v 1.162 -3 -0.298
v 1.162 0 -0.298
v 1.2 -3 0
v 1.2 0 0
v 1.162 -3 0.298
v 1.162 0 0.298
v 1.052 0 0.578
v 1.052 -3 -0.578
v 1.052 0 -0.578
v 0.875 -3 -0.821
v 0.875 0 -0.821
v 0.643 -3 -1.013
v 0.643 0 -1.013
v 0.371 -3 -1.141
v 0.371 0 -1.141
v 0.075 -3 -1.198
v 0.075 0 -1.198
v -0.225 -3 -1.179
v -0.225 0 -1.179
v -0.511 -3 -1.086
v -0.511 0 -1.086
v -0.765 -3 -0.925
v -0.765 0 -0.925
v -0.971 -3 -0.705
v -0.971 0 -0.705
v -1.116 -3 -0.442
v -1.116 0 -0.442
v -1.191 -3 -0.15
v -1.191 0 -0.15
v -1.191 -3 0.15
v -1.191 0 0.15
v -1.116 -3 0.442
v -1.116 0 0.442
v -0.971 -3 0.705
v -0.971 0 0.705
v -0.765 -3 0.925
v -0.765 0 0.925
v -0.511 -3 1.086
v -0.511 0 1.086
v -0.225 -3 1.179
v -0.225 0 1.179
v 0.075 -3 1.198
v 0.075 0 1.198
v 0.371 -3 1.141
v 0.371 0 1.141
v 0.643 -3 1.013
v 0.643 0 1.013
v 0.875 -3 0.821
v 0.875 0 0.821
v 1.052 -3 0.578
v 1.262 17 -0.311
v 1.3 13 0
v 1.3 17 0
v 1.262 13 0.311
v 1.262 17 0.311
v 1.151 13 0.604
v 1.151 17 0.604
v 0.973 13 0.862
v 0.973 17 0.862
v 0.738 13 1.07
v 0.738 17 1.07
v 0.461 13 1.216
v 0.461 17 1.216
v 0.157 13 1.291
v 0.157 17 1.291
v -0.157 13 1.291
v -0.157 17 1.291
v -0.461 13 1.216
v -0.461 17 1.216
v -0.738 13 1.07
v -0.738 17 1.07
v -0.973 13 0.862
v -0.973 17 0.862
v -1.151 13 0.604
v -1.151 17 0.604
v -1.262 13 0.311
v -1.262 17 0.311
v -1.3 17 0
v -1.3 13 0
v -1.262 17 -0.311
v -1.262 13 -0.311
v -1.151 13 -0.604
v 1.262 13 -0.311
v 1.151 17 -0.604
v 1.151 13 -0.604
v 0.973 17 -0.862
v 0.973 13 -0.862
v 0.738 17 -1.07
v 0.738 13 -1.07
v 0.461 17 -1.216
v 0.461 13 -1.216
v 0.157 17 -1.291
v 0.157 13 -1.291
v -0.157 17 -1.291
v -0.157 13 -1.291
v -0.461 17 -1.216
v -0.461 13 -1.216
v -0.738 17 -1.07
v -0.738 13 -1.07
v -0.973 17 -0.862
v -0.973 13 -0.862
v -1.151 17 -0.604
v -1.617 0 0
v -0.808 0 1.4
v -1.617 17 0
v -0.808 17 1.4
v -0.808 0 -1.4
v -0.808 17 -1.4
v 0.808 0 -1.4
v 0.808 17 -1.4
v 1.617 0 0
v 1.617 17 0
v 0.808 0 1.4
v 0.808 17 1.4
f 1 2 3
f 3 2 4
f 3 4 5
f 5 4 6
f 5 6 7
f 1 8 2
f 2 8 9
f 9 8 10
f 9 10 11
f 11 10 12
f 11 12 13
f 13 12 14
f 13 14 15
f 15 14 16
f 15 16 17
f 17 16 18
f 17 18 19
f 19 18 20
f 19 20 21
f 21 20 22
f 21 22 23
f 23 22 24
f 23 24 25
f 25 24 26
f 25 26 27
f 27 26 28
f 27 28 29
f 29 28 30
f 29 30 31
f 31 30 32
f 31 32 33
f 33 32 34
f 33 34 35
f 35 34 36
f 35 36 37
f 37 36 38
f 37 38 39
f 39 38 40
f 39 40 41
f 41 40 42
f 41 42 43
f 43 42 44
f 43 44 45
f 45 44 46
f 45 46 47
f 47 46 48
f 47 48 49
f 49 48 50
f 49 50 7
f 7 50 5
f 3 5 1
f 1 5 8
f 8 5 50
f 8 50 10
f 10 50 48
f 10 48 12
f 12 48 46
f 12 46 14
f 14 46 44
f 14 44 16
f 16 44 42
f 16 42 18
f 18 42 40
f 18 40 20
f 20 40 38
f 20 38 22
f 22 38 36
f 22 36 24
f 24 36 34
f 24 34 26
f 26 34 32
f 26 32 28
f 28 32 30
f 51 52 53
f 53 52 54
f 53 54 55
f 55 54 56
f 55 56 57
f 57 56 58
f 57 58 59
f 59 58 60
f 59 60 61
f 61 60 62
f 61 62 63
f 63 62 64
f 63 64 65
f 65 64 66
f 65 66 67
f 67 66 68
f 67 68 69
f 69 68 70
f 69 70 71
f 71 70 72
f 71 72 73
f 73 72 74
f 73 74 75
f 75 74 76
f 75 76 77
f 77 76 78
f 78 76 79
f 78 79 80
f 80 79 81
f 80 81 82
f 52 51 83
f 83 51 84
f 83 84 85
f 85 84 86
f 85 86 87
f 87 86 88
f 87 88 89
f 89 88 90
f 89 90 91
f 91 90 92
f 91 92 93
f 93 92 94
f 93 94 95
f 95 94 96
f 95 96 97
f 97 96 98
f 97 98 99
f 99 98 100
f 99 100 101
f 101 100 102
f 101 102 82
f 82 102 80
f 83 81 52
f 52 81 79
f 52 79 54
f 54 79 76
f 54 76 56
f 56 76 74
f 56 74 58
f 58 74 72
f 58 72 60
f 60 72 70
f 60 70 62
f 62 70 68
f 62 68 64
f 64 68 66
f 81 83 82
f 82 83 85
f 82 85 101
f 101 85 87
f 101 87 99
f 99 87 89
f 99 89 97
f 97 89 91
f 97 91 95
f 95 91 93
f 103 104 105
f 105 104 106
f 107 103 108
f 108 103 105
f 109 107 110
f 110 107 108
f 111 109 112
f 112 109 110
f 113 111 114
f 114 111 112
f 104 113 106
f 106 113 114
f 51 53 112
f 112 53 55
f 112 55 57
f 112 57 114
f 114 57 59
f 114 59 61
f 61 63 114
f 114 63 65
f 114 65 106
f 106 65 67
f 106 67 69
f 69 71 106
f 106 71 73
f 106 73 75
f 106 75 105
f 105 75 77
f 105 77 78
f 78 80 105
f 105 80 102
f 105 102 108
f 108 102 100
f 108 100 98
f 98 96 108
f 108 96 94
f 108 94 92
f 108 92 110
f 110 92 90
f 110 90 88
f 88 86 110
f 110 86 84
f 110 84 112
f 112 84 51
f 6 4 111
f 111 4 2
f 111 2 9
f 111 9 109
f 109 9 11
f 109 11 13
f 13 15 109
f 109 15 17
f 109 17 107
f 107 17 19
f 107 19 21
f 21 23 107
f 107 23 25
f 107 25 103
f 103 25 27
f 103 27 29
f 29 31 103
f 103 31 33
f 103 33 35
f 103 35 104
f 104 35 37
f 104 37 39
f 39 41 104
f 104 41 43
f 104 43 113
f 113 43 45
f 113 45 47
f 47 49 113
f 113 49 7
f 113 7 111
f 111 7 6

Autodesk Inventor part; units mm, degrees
ref_plane "YZ Plane" through (0, 0, 0) normal (1, 0, 0) x (0, 1, 0)
ref_plane "XZ Plane" through (0, 0, 0) normal (0, 1, 0) x (-1, 0, 0)
ref_plane "XY Plane" through (0, 0, 0) normal (0, 0, 1) x (1, 0, 0)
sketch "Эскиз1" plane through (0, 0, 0) normal (0, 1, 0) x (-1, 0, 0)
  circle A0 centre (0, 0) radius 1.4
  line L0 (0.8083, 1.4) -> (1.6166, 0)
  line L1 (1.6166, 0) -> (0.8083, -1.4)
  line L2 (0.8083, -1.4) -> (-0.8083, -1.4)
  line L3 (-0.8083, -1.4) -> (-1.6166, 0)
  line L4 (-1.6166, 0) -> (-0.8083, 1.4)
  line L5 (-0.8083, 1.4) -> (0.8083, 1.4)
  line L6 (0, 0) -> (3.2332, 0) construction
  dimension "d0" = 2.8
extrude "Выдавливание1" add sketch "Эскиз1" along normal blind 17
sketch "Эскиз2" plane through (0, 17, 0) normal (0, 1, 0) x (1, 0, 0)
  point P0 (0, 0)
  point P1 (0, 0)
hole "Отверстие1" at (0, 17, 0) direction (0, -1, 0) diameter 2.6 depth 4
sketch "Эскиз3" plane through (0, 0, 0) normal (0, -1, 0) x (1, 0, 0)
  circle A0 centre (0, 0) radius 1.2
  dimension "d10" = 2.4
extrude "Выдавливание2" add sketch "Эскиз3" along normal blind 3
properties part number "столбики"
